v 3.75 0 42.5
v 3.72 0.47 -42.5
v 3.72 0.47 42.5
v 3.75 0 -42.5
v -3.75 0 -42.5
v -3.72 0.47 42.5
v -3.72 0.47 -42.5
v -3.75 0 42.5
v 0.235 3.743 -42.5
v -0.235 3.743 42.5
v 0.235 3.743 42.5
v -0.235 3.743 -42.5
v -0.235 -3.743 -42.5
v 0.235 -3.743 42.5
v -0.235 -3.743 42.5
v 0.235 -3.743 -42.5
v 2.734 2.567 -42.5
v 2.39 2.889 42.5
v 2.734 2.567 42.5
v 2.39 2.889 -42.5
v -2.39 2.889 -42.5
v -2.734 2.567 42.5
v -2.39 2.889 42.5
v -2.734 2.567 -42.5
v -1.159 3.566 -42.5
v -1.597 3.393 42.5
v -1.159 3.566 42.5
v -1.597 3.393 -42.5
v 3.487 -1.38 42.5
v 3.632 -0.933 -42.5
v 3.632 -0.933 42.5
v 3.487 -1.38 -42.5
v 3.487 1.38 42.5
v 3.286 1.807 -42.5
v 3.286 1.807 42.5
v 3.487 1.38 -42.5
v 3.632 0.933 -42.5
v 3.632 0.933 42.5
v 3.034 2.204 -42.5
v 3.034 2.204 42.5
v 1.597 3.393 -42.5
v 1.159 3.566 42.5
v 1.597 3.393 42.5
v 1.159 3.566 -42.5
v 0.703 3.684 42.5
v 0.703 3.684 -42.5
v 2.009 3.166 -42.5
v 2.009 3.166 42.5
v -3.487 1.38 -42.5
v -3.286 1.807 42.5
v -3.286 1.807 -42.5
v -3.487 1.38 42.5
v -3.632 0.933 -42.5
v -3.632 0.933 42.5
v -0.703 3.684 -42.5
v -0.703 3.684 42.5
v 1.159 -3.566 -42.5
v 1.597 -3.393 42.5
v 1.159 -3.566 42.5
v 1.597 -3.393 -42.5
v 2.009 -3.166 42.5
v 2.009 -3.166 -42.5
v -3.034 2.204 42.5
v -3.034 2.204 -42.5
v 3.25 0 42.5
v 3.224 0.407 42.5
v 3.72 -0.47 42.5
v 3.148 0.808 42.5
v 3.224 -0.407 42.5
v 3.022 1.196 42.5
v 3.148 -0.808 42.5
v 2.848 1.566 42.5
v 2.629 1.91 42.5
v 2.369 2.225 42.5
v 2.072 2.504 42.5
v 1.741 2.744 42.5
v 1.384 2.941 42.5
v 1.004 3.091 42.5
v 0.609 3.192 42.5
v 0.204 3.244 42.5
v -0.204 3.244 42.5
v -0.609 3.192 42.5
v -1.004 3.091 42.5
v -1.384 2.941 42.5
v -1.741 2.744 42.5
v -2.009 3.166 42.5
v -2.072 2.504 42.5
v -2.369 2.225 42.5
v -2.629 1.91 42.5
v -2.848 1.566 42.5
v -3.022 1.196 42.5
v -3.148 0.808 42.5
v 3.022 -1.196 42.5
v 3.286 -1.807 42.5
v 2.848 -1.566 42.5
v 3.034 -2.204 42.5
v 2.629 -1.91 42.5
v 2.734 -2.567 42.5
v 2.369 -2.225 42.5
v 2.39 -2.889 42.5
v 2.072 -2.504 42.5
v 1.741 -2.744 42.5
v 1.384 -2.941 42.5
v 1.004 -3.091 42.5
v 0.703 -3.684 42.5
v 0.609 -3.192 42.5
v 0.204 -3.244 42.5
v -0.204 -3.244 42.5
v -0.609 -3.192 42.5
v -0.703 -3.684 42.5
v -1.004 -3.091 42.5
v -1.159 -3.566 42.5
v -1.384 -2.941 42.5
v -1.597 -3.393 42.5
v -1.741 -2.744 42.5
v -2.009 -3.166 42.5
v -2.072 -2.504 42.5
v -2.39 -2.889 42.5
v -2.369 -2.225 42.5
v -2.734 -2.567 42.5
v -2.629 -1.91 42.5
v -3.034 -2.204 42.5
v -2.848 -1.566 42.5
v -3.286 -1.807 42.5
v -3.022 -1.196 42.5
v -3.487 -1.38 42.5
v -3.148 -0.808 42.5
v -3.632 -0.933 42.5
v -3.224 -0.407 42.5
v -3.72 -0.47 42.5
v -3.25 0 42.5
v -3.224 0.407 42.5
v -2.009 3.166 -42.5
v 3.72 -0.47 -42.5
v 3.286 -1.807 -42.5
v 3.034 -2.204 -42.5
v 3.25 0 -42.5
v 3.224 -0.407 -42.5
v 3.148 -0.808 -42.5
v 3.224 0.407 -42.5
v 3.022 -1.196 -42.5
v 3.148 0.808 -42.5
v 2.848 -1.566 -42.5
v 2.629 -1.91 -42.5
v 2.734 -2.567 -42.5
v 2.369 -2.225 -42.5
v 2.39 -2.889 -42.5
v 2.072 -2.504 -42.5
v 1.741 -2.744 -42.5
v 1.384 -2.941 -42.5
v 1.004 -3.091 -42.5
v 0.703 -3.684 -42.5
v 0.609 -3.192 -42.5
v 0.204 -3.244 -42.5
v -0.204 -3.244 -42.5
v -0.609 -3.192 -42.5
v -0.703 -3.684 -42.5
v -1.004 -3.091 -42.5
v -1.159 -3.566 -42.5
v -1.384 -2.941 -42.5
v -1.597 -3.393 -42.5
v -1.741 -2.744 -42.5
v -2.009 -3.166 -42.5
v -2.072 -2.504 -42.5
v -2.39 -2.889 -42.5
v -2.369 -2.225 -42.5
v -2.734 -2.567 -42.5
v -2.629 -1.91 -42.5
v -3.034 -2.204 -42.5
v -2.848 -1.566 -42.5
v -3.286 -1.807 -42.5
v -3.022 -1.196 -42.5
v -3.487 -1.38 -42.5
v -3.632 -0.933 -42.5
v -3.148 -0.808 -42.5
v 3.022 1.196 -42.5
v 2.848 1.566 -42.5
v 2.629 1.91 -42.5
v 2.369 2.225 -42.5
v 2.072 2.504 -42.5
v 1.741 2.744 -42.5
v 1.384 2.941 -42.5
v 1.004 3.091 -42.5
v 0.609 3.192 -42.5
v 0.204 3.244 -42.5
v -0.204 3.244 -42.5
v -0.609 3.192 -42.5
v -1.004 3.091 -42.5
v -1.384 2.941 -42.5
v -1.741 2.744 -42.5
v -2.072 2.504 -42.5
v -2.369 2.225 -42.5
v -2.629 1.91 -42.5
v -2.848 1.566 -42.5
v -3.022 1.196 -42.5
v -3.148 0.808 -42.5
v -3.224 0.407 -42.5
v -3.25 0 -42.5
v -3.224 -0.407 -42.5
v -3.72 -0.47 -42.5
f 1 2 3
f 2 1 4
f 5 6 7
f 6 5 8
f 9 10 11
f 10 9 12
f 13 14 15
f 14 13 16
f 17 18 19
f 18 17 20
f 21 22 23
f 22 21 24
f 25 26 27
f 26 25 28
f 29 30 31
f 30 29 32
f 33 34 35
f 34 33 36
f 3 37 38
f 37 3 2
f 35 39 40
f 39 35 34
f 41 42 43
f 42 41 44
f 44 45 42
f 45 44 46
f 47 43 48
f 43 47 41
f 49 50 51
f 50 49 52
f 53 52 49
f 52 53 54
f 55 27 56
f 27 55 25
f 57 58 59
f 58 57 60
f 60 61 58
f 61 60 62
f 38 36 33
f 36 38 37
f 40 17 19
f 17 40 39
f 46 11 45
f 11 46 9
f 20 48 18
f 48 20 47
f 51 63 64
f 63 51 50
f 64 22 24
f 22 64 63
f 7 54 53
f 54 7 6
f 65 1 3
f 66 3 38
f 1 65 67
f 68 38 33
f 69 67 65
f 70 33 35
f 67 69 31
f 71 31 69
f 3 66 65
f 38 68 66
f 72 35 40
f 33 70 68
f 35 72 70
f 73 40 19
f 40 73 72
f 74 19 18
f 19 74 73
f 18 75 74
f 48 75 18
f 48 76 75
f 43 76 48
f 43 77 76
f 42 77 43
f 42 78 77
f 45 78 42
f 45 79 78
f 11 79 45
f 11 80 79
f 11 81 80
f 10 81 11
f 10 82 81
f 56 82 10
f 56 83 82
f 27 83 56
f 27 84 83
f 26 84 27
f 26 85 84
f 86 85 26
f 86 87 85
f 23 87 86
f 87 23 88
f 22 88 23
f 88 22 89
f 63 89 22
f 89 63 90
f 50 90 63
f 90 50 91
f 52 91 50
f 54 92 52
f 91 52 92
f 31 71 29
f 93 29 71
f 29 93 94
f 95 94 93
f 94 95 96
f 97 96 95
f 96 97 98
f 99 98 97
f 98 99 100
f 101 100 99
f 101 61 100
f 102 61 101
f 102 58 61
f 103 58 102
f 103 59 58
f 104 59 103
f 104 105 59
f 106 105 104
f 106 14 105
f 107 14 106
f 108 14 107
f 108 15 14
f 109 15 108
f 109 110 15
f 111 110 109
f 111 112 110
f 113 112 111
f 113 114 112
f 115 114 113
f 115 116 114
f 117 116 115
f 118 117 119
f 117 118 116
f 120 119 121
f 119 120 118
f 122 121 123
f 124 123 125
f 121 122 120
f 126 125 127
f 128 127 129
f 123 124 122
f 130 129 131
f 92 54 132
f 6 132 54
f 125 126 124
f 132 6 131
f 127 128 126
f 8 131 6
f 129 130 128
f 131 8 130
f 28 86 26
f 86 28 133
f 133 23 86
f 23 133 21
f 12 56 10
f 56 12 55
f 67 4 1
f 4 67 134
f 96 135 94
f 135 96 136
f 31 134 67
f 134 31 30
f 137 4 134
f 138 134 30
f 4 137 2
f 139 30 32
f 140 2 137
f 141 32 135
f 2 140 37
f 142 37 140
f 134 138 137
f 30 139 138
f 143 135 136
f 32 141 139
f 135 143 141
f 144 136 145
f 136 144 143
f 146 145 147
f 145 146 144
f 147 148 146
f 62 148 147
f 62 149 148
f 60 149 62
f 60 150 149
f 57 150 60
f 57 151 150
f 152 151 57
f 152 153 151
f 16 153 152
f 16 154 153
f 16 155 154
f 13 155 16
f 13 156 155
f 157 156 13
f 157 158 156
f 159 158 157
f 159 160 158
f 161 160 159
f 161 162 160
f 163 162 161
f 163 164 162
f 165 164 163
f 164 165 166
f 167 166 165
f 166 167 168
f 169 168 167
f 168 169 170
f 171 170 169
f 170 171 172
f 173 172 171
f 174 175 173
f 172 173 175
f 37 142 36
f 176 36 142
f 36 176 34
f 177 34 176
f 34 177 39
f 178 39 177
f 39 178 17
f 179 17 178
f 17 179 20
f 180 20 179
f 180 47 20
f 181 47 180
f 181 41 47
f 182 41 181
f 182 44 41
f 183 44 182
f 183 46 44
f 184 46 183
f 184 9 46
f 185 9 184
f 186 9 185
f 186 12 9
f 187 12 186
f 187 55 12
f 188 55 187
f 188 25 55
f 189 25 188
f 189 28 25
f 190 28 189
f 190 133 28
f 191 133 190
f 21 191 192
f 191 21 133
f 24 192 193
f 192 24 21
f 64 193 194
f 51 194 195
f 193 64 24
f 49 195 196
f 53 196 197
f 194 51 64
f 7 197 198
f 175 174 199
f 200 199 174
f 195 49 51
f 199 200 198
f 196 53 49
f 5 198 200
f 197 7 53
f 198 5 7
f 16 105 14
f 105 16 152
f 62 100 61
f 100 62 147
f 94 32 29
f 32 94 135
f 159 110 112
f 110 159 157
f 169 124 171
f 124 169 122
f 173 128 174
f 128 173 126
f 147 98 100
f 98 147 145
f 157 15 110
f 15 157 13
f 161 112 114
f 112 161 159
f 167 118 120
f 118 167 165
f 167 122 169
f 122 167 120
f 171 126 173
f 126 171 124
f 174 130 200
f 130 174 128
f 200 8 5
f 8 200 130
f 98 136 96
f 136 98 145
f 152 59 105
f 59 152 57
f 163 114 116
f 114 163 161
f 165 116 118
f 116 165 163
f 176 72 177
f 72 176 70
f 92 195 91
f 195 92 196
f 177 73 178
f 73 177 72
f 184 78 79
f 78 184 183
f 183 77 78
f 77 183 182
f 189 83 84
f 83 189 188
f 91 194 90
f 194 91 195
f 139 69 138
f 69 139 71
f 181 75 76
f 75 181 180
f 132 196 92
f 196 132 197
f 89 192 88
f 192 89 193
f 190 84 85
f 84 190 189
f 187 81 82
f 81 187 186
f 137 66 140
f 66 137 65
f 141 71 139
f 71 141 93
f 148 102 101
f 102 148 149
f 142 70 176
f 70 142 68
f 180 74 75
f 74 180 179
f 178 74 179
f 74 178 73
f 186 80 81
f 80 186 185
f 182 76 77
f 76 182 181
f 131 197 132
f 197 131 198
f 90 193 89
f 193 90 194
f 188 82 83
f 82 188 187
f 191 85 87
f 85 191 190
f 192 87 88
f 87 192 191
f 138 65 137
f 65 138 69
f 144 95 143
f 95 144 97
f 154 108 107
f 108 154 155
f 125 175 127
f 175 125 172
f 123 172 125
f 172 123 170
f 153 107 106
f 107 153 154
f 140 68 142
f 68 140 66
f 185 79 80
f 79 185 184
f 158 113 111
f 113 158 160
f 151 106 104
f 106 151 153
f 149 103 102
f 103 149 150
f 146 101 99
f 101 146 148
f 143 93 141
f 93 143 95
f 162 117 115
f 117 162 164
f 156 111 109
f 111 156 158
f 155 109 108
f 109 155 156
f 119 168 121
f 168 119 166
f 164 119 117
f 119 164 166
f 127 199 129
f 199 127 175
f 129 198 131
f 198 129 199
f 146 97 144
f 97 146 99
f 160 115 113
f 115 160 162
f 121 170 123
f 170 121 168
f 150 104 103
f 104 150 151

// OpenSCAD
$fn = 50;


difference() {
	union() {
		translate(v = [0, 0, -42.5000000000]) {
			cylinder(h = 85, r = 3.7500000000);
		}
	}
	union() {
		translate(v = [0, 0, -100.0000000000]) {
			cylinder(h = 200, r = 3.2500000000);
		}
	}
}
